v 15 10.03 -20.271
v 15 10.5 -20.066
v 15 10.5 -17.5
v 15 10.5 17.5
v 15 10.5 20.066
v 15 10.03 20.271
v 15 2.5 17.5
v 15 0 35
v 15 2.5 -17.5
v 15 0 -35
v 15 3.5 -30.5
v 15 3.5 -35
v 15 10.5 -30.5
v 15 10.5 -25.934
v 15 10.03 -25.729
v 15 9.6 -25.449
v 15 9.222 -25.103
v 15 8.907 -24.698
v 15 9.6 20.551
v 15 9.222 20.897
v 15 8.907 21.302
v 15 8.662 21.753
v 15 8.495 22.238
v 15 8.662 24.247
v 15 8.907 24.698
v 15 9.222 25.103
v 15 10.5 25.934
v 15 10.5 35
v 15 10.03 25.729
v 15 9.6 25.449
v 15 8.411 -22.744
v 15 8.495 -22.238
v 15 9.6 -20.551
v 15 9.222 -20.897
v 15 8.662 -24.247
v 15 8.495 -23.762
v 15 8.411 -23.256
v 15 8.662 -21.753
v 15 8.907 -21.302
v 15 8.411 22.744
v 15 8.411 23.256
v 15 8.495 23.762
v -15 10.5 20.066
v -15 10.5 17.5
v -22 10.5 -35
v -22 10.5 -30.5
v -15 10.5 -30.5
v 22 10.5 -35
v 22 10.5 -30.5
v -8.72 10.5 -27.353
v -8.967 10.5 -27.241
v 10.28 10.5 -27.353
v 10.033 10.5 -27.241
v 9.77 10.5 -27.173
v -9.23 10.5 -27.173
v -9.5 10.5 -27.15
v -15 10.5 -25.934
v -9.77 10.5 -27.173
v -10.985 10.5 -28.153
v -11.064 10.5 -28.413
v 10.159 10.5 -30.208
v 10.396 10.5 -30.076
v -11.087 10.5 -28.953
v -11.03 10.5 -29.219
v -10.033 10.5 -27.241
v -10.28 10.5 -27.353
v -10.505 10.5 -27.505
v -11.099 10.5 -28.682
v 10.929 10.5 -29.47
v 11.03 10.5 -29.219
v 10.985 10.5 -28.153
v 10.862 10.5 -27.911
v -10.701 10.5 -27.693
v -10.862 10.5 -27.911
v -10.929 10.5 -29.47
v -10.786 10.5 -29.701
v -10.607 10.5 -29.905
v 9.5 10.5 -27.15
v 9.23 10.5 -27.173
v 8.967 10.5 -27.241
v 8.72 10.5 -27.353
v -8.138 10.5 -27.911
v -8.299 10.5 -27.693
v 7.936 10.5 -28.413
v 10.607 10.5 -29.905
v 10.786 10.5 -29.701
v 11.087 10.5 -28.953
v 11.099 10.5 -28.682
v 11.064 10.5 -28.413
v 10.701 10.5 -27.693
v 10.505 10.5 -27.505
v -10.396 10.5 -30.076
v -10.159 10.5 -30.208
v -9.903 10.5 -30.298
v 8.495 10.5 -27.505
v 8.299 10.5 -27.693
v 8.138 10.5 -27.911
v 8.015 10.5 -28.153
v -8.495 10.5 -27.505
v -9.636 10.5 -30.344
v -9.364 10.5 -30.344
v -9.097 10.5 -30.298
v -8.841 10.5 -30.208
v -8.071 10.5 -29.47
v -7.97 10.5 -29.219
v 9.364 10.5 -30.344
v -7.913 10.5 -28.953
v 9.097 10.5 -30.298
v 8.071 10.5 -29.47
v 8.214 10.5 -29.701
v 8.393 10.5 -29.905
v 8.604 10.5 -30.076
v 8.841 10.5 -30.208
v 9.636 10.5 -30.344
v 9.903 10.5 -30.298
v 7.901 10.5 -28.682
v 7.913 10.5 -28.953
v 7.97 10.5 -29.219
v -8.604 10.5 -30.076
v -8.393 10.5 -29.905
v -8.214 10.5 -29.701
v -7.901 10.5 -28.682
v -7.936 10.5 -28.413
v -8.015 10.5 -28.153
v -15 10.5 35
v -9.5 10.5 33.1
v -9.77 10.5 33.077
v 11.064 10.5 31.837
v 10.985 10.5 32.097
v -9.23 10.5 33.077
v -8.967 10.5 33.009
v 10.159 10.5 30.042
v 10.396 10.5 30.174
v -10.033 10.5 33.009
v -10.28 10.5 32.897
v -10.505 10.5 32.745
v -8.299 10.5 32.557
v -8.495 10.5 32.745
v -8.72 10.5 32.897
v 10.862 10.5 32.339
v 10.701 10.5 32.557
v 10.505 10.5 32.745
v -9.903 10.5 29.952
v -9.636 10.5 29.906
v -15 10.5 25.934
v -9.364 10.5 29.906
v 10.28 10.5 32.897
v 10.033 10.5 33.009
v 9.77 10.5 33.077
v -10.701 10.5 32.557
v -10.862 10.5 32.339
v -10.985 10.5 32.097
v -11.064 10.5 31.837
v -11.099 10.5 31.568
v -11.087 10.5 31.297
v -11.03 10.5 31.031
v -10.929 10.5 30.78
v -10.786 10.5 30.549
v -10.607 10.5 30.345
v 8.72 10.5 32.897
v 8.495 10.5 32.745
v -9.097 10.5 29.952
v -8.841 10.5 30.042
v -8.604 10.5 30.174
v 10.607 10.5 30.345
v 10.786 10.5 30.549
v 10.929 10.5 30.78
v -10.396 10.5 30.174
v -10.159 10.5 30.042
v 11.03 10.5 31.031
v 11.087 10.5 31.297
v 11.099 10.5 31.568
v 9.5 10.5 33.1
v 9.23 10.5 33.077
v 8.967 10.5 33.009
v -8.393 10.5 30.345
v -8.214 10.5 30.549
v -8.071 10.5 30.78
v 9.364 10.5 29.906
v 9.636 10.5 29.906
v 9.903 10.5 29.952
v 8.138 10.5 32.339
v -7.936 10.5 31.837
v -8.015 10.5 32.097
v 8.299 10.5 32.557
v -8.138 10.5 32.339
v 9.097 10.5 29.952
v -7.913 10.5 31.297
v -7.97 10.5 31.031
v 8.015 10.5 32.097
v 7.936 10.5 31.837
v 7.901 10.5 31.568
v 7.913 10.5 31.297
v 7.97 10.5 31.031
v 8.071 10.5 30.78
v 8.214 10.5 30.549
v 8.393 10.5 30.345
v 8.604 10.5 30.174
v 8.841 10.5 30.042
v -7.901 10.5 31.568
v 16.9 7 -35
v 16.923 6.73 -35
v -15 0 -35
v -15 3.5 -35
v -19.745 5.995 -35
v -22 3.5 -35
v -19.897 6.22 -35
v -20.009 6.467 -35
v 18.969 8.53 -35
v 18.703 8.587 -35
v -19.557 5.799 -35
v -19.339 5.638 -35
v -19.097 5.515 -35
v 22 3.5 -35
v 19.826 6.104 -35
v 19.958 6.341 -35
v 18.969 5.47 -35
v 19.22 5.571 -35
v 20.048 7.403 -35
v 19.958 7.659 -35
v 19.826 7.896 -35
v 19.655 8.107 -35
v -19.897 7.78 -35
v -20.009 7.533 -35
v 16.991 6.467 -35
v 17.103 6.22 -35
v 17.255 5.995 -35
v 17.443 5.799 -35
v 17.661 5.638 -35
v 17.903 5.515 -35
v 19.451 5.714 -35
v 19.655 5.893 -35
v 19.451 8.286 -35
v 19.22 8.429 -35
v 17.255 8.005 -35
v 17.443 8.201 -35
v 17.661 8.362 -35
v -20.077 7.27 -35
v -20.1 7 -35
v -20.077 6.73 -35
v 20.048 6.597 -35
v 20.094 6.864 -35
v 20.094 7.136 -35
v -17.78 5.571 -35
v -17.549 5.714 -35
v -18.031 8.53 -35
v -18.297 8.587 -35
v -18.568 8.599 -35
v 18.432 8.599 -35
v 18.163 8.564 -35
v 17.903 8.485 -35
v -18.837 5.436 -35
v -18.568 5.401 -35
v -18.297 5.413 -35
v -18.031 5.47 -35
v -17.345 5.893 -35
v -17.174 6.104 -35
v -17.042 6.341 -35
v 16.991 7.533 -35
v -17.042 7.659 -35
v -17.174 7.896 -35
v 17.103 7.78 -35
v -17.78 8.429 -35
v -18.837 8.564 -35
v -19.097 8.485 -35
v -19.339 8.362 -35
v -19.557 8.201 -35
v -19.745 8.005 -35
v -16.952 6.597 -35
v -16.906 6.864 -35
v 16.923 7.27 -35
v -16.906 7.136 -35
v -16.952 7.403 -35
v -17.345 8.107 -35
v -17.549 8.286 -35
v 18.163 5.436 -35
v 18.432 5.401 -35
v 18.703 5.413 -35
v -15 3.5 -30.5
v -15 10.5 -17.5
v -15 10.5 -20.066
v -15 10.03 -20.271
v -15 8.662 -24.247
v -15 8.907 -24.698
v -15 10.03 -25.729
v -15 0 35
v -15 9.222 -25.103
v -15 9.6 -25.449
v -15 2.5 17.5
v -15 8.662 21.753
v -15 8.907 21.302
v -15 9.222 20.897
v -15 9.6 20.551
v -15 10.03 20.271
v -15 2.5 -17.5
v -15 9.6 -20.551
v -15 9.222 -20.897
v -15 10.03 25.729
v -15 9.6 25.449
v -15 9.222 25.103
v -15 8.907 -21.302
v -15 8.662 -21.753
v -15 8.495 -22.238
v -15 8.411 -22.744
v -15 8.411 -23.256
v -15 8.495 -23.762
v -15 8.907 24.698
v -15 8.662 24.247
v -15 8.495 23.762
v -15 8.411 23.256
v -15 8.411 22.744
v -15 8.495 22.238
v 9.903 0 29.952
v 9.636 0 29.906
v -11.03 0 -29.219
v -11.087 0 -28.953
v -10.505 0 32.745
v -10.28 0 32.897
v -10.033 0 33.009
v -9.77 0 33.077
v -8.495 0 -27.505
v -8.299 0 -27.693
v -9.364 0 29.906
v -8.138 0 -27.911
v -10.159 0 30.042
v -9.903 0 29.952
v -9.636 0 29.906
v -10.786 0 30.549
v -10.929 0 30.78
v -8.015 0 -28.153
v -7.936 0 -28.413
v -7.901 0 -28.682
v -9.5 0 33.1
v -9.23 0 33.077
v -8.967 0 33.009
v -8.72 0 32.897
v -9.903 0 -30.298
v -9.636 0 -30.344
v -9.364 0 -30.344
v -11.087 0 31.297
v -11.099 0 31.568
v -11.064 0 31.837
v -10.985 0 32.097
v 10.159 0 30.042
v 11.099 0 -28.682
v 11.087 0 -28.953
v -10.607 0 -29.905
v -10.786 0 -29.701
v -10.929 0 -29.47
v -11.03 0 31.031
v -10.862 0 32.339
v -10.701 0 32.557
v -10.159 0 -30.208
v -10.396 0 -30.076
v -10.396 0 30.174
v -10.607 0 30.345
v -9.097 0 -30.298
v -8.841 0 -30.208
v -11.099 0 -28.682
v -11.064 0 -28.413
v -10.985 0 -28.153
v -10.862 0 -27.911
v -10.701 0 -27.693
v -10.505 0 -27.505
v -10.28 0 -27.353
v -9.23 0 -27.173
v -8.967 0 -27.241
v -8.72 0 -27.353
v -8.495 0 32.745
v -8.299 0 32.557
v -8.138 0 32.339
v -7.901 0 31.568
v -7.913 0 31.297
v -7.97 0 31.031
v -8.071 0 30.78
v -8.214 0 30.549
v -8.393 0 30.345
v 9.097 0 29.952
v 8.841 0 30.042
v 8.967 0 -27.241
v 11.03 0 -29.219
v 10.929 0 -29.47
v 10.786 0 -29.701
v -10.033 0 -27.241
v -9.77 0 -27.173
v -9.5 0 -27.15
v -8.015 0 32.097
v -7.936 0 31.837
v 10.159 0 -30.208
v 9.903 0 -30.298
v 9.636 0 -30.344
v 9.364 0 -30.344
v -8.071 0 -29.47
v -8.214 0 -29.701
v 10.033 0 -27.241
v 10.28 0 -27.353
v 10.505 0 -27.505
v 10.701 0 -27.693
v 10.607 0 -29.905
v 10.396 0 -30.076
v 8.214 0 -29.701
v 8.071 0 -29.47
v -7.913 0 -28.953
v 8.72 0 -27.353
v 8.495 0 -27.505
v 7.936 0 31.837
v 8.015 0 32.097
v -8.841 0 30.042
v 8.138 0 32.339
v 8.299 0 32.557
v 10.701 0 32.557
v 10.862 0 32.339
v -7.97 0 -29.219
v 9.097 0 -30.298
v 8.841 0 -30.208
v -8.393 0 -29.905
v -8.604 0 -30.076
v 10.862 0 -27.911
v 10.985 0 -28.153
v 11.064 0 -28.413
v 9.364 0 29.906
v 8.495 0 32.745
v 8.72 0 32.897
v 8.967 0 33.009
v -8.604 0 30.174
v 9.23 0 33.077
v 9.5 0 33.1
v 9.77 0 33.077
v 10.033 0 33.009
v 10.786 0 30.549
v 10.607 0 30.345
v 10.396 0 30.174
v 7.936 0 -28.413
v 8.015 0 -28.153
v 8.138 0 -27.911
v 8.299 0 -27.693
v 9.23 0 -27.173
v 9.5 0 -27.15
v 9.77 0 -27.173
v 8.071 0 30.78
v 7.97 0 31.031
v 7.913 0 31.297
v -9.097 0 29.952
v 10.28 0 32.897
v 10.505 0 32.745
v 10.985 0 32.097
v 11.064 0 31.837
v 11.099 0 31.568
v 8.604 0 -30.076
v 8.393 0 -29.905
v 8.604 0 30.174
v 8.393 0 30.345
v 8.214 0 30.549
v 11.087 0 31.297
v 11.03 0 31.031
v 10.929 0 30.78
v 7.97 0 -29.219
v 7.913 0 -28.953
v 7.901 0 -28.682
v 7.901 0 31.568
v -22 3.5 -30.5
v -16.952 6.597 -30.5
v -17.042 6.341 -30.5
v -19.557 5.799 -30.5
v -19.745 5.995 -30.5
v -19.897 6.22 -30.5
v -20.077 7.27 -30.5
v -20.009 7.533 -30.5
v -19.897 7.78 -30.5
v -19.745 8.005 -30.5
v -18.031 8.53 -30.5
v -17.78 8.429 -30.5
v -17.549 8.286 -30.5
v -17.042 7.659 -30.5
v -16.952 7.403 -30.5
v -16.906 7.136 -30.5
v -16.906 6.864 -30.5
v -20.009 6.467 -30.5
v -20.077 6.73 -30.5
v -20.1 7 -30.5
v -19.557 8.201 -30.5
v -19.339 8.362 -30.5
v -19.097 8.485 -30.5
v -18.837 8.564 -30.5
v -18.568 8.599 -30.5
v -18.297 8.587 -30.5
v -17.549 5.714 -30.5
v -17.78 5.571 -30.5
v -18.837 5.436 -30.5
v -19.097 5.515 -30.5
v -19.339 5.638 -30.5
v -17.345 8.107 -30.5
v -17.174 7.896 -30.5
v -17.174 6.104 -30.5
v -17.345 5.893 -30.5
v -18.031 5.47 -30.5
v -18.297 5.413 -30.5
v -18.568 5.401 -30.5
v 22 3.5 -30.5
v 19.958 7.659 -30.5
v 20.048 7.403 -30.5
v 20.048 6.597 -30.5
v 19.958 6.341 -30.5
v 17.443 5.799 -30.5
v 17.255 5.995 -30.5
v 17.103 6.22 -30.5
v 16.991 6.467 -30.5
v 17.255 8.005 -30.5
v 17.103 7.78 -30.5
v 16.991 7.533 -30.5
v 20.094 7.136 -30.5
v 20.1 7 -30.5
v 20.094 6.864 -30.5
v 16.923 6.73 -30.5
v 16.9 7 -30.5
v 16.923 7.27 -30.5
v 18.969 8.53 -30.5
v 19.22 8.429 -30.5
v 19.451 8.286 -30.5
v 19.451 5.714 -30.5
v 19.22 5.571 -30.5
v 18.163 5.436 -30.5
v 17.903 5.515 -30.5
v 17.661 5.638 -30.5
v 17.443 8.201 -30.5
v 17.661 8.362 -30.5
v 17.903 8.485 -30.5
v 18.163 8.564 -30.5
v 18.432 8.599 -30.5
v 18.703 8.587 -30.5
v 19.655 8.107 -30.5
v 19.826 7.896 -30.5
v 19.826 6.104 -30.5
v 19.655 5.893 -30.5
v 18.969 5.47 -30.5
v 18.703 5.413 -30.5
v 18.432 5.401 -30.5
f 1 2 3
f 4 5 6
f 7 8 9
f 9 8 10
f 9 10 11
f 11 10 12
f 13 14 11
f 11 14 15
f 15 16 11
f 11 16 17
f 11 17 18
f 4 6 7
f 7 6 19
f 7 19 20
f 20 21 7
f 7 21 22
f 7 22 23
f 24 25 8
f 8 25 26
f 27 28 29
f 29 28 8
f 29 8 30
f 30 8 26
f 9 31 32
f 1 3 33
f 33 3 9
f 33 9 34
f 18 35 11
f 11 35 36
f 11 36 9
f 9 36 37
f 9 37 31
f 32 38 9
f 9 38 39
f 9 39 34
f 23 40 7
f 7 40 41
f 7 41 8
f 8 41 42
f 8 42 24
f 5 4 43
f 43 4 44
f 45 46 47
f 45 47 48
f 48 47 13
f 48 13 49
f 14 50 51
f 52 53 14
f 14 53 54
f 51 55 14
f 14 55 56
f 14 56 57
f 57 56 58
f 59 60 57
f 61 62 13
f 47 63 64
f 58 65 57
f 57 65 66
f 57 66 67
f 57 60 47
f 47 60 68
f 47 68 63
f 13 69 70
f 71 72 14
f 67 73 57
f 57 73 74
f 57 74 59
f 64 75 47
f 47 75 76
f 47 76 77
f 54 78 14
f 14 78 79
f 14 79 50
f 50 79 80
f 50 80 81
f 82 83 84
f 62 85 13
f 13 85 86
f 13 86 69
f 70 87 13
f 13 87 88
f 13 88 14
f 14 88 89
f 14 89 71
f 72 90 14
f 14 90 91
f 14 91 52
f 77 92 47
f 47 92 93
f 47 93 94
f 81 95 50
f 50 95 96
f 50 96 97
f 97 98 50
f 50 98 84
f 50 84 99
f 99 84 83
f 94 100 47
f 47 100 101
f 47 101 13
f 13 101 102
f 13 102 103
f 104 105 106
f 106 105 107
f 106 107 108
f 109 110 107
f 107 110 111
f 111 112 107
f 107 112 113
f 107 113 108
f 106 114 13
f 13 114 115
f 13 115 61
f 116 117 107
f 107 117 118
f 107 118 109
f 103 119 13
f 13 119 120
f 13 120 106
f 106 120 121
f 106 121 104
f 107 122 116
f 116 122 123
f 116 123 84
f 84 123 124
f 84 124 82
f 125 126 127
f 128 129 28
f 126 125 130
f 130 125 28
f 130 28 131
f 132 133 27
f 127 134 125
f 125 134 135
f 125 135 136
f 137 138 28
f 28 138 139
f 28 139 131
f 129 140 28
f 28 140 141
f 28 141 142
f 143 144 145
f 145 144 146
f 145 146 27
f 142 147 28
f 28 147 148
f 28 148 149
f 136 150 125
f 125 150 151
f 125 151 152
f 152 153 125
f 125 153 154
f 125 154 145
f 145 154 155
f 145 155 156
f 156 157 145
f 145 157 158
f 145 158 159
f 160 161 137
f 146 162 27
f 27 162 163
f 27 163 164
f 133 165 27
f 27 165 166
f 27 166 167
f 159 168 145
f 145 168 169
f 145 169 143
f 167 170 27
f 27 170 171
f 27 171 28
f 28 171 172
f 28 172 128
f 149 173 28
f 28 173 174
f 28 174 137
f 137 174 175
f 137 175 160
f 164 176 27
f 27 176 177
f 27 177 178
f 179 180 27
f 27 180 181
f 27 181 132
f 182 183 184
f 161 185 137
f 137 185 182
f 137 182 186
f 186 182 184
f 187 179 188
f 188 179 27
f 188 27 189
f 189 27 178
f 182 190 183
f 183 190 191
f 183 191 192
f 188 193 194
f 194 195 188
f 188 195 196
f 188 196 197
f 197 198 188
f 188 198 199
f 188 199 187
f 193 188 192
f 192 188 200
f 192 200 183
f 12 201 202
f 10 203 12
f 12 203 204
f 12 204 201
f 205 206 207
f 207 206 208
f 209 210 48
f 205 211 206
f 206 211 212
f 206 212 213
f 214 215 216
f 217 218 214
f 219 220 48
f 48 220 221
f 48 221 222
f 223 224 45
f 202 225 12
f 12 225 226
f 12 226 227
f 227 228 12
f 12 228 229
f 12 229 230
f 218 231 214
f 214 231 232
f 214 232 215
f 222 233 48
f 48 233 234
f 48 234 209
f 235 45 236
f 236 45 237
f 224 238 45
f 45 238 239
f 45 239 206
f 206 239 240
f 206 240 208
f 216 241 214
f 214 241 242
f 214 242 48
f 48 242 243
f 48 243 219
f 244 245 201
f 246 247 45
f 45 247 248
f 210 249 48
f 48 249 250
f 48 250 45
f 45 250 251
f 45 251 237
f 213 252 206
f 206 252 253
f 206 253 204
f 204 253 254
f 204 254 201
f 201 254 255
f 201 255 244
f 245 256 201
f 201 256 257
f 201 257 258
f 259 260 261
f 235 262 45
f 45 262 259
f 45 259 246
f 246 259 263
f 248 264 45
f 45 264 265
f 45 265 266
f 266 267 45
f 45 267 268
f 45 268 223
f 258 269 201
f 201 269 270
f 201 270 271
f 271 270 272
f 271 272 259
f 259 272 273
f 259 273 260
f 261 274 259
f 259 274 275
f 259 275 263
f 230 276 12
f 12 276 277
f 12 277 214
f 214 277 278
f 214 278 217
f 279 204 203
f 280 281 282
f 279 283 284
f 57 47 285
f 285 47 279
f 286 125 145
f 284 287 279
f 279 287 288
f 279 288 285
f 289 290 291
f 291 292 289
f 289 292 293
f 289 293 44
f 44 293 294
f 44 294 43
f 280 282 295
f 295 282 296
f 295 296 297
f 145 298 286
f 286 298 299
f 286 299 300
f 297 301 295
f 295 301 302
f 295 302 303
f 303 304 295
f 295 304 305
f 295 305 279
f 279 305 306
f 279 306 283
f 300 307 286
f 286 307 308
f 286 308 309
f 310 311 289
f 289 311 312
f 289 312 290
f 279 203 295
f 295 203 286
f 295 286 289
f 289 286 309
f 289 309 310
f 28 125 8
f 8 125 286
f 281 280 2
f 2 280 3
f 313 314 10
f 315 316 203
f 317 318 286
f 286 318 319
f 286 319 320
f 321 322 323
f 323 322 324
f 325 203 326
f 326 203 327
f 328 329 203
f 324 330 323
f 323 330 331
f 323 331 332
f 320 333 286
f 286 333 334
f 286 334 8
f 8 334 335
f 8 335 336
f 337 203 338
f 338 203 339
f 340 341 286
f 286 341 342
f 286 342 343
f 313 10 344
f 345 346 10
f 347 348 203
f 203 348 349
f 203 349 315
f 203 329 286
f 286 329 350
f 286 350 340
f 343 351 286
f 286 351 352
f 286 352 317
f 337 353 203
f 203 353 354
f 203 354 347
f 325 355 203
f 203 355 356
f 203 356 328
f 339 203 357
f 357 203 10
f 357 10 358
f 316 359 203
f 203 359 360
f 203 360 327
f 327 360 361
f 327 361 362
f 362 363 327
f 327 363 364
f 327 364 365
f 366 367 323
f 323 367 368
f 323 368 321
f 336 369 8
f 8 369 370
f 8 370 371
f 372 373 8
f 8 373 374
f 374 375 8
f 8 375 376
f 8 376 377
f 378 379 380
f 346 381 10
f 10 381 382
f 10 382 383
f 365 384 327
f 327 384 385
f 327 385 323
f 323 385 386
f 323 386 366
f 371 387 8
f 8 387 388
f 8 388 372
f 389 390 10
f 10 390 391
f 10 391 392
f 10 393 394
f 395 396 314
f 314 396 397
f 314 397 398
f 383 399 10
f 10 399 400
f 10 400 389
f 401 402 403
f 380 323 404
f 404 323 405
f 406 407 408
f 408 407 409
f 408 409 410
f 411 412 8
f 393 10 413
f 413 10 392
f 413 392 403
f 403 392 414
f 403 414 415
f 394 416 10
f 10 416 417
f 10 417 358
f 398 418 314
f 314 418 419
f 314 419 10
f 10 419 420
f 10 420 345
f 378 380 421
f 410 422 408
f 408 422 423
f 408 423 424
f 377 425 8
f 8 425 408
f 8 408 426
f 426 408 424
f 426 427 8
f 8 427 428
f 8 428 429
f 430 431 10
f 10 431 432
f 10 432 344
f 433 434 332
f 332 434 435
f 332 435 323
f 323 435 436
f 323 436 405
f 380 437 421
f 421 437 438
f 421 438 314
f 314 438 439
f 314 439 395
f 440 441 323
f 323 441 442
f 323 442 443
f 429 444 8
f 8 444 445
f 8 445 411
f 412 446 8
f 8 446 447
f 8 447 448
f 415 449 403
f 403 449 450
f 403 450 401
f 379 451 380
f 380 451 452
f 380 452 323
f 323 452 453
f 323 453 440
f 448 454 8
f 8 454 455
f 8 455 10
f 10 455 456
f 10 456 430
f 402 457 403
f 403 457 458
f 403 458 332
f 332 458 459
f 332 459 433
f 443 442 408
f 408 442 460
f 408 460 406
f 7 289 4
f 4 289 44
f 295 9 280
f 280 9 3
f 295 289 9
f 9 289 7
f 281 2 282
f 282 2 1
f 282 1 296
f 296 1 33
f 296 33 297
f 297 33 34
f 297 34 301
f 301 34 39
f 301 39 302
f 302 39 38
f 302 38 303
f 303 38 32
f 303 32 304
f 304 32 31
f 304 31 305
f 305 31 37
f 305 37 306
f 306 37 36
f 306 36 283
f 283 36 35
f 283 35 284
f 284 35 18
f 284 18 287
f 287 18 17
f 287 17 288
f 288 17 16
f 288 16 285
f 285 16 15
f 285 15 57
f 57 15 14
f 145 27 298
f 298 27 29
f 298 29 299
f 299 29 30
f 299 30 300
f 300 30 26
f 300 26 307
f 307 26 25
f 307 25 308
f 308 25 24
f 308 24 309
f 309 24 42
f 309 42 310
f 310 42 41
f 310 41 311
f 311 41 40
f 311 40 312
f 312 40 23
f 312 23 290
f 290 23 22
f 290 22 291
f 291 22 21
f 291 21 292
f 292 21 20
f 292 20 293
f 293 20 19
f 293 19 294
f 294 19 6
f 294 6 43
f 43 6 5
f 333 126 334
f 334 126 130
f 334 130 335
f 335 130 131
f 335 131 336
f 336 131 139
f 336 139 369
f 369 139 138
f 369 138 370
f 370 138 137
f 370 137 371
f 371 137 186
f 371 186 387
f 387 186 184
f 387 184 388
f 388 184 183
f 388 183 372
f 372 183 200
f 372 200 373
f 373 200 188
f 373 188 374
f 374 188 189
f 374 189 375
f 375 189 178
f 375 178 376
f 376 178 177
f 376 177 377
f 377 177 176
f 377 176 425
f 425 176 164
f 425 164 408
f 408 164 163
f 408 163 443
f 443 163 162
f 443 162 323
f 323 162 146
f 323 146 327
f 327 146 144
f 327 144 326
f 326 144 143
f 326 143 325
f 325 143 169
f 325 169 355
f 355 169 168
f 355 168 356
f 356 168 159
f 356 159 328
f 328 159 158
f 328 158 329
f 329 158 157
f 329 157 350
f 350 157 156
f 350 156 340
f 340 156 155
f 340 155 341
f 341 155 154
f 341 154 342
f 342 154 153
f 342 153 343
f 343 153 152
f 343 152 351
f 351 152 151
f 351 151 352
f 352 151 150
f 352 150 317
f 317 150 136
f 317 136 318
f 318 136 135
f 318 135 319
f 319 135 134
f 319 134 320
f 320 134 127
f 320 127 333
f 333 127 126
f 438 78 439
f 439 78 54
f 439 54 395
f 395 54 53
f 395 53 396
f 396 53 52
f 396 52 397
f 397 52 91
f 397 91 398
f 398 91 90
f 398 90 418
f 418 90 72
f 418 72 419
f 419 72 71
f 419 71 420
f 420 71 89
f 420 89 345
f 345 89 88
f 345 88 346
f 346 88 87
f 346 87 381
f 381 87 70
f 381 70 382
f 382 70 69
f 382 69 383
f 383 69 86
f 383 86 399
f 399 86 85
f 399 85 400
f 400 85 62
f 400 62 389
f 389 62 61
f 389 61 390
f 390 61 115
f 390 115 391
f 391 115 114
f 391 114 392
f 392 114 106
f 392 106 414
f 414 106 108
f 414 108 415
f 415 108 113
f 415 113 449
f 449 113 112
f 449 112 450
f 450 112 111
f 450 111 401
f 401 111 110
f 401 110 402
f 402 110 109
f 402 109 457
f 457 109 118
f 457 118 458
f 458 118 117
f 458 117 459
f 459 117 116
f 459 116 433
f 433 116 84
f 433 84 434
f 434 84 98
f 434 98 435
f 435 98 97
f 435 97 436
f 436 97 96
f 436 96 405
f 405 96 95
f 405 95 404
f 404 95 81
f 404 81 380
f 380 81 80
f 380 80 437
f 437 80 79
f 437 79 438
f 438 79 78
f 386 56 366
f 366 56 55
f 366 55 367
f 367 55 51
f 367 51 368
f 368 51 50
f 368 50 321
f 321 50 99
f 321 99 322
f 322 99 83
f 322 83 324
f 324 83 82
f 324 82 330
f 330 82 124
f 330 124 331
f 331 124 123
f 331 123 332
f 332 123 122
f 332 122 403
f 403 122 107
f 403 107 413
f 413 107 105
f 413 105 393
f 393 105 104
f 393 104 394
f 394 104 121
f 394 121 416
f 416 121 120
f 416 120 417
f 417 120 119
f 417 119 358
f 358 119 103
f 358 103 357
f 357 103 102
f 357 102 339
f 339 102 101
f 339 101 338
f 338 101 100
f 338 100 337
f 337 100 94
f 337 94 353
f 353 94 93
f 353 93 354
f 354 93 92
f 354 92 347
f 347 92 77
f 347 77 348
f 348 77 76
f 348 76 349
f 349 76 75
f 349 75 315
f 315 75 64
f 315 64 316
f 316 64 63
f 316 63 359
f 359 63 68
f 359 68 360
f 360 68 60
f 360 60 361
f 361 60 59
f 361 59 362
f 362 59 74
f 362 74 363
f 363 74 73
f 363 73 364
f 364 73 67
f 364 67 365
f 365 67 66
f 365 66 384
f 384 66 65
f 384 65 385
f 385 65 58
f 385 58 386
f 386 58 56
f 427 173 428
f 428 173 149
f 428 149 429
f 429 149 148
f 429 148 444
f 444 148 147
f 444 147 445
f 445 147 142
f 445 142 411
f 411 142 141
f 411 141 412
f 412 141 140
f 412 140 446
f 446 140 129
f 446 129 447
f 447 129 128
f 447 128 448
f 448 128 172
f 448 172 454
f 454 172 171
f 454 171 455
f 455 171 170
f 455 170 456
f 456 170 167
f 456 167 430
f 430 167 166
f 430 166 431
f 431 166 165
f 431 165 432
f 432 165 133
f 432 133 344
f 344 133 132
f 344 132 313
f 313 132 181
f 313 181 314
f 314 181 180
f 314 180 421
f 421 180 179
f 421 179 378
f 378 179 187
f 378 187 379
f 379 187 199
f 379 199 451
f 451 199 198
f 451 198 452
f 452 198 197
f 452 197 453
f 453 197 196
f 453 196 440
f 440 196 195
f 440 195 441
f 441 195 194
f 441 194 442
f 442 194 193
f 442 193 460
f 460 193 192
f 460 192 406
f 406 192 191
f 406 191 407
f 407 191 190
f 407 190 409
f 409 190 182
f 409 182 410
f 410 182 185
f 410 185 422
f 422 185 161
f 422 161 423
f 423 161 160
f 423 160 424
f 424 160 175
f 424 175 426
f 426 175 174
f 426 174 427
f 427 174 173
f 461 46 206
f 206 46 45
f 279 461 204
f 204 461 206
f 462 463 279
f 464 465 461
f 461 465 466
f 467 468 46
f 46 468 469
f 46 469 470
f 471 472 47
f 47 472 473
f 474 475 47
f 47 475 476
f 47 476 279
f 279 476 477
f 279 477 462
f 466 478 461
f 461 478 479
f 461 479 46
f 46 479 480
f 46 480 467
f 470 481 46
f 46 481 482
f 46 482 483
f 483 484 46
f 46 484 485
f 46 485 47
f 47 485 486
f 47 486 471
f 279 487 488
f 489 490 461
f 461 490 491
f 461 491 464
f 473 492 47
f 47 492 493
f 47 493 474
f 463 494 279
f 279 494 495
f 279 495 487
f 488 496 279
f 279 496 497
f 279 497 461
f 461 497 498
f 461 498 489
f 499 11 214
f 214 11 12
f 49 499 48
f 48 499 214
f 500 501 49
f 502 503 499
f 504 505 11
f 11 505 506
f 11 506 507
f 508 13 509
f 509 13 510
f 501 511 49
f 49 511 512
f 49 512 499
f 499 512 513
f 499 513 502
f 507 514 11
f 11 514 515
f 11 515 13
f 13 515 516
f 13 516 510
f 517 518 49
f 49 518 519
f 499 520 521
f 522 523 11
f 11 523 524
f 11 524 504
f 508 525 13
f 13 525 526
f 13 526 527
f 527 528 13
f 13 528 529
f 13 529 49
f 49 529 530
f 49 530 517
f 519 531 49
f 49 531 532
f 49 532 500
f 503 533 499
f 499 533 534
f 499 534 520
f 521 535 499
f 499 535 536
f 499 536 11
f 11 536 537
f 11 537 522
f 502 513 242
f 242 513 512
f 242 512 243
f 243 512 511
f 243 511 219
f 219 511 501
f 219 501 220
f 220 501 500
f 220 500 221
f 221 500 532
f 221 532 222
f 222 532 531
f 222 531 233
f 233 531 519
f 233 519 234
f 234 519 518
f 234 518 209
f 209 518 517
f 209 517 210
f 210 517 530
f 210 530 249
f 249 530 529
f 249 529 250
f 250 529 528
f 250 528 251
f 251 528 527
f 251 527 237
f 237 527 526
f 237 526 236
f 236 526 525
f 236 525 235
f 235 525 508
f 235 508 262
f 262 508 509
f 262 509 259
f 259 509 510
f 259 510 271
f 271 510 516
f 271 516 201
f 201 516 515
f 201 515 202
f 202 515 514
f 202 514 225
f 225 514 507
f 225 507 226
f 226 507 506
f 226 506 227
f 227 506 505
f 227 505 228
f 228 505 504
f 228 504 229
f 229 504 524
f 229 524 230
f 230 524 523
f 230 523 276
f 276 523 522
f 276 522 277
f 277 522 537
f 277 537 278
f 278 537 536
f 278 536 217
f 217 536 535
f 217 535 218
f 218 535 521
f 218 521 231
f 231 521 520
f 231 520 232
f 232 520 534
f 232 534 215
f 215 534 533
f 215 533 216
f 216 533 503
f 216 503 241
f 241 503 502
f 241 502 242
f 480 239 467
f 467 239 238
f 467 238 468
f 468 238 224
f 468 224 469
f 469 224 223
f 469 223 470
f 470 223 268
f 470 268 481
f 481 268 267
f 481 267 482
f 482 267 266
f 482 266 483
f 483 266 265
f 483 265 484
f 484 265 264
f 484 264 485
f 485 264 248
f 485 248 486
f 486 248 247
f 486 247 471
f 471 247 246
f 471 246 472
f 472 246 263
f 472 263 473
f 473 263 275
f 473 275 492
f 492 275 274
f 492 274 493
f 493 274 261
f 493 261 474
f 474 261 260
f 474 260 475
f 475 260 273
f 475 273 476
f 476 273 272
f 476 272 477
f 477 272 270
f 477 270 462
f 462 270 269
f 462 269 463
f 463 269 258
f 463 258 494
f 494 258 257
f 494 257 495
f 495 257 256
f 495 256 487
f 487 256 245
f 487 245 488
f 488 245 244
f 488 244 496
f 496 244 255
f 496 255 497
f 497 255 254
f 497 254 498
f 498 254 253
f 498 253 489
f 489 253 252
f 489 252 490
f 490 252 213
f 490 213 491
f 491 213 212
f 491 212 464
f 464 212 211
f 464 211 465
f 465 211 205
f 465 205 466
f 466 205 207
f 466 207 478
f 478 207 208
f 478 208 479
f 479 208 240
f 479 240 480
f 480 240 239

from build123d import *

# Parameters (mm, degrees)
SKETCH1_W           = 30
SKETCH1_H           = 70
BOSS_EXTRUDE1_DEPTH = 10.5
SKETCH2_W           = 30
SKETCH2_H           = 35
CUT_EXTRUDE1_DEPTH  = 8
SKETCH3_R           = 3.1
CUT_EXTRUDE2_DEPTH  = 48.2784306
SKETCH4_R           = 1.6
CUT_EXTRUDE3_DEPTH  = 40.5
SKETCH5_W           = 7
SKETCH5_H           = 7
BOSS_EXTRUDE2_DEPTH = 4.5
CUT_EXTRUDE4_REACH  = 76.123
SKETCH6_R           = 1.6


with BuildPart() as part:
    # Sketch1 → Boss-Extrude1 (new body)
    with BuildSketch(Plane(origin=(0, 0, 0), x_dir=(1, 0, 0), z_dir=(0, 1, 0))):
        Rectangle(SKETCH1_W, SKETCH1_H)
    extrude(amount=BOSS_EXTRUDE1_DEPTH)

    # Sketch2 → Cut-Extrude1 (cut)
    with BuildSketch(Plane(origin=(0, 10.5, 0), x_dir=(1, 0, 0), z_dir=(0, 1, 0))):
        Rectangle(SKETCH2_W, SKETCH2_H)
    extrude(amount=-CUT_EXTRUDE1_DEPTH, mode=Mode.SUBTRACT)

    # Sketch3 → Cut-Extrude2 (cut, through all)
    with BuildSketch(Plane(origin=(15, 0, 0), x_dir=(0, 0, -1), z_dir=(1, 0, 0))):
        with Locations((-23, 11.5)):
            Circle(SKETCH3_R)
        with Locations((23, 11.5)):
            Circle(SKETCH3_R)
    extrude(amount=-CUT_EXTRUDE2_DEPTH, mode=Mode.SUBTRACT)

    # Sketch4 → Cut-Extrude3 (cut, through all)
    with BuildSketch(Plane(origin=(0, 10.5, 0), x_dir=(1, 0, 0), z_dir=(0, 1, 0))):
        with Locations(Location((-9.5, -31.5, 0), (0, 0, 270))):
            Circle(SKETCH4_R)
        with Locations(Location((9.5, -31.5, 0), (0, 0, 270))):
            Circle(SKETCH4_R)
        with Locations(Location((-9.5, 28.75, 0), (0, 0, 270))):
            Circle(SKETCH4_R)
        with Locations(Location((9.5, 28.75, 0), (0, 0, 270))):
            Circle(SKETCH4_R)
    extrude(amount=-CUT_EXTRUDE3_DEPTH, mode=Mode.SUBTRACT)

    # Sketch5 → Boss-Extrude2 (add)
    with BuildSketch(Plane(origin=(0, 0, -35), x_dir=(-1, 0, 0), z_dir=(0, 0, -1))):
        with Locations((18.5, 7)):
            Rectangle(SKETCH5_W, SKETCH5_H)
        with Locations((-18.5, 7)):
            Rectangle(SKETCH5_W, SKETCH5_H)
    extrude(amount=-BOSS_EXTRUDE2_DEPTH)

    # Sketch6 → Cut-Extrude4 (cut, up to next)
    with BuildSketch(Plane(origin=(0, 0, -35), x_dir=(-1, 0, 0), z_dir=(0, 0, -1)), mode=Mode.PRIVATE) as cut_extrude4_sk1:
        with Locations((-18.5, 7)):
            Circle(SKETCH6_R)
    cut_extrude4_tool1 = extrude(cut_extrude4_sk1.sketch, amount=-CUT_EXTRUDE4_REACH, mode=Mode.PRIVATE) & part.part
    # Sketch6 → Cut-Extrude4 (cut, up to next)
    with BuildSketch(Plane(origin=(0, 0, -35), x_dir=(-1, 0, 0), z_dir=(0, 0, -1)), mode=Mode.PRIVATE) as cut_extrude4_sk2:
        with Locations((18.5, 7)):
            Circle(SKETCH6_R)
    cut_extrude4_tool2 = extrude(cut_extrude4_sk2.sketch, amount=-CUT_EXTRUDE4_REACH, mode=Mode.PRIVATE) & part.part
    add(cut_extrude4_tool1.solids().sort_by_distance((18.5, 7, -35))[0], mode=Mode.SUBTRACT)
    add(cut_extrude4_tool2.solids().sort_by_distance((-18.5, 7, -35))[0], mode=Mode.SUBTRACT)


solid = part.part
